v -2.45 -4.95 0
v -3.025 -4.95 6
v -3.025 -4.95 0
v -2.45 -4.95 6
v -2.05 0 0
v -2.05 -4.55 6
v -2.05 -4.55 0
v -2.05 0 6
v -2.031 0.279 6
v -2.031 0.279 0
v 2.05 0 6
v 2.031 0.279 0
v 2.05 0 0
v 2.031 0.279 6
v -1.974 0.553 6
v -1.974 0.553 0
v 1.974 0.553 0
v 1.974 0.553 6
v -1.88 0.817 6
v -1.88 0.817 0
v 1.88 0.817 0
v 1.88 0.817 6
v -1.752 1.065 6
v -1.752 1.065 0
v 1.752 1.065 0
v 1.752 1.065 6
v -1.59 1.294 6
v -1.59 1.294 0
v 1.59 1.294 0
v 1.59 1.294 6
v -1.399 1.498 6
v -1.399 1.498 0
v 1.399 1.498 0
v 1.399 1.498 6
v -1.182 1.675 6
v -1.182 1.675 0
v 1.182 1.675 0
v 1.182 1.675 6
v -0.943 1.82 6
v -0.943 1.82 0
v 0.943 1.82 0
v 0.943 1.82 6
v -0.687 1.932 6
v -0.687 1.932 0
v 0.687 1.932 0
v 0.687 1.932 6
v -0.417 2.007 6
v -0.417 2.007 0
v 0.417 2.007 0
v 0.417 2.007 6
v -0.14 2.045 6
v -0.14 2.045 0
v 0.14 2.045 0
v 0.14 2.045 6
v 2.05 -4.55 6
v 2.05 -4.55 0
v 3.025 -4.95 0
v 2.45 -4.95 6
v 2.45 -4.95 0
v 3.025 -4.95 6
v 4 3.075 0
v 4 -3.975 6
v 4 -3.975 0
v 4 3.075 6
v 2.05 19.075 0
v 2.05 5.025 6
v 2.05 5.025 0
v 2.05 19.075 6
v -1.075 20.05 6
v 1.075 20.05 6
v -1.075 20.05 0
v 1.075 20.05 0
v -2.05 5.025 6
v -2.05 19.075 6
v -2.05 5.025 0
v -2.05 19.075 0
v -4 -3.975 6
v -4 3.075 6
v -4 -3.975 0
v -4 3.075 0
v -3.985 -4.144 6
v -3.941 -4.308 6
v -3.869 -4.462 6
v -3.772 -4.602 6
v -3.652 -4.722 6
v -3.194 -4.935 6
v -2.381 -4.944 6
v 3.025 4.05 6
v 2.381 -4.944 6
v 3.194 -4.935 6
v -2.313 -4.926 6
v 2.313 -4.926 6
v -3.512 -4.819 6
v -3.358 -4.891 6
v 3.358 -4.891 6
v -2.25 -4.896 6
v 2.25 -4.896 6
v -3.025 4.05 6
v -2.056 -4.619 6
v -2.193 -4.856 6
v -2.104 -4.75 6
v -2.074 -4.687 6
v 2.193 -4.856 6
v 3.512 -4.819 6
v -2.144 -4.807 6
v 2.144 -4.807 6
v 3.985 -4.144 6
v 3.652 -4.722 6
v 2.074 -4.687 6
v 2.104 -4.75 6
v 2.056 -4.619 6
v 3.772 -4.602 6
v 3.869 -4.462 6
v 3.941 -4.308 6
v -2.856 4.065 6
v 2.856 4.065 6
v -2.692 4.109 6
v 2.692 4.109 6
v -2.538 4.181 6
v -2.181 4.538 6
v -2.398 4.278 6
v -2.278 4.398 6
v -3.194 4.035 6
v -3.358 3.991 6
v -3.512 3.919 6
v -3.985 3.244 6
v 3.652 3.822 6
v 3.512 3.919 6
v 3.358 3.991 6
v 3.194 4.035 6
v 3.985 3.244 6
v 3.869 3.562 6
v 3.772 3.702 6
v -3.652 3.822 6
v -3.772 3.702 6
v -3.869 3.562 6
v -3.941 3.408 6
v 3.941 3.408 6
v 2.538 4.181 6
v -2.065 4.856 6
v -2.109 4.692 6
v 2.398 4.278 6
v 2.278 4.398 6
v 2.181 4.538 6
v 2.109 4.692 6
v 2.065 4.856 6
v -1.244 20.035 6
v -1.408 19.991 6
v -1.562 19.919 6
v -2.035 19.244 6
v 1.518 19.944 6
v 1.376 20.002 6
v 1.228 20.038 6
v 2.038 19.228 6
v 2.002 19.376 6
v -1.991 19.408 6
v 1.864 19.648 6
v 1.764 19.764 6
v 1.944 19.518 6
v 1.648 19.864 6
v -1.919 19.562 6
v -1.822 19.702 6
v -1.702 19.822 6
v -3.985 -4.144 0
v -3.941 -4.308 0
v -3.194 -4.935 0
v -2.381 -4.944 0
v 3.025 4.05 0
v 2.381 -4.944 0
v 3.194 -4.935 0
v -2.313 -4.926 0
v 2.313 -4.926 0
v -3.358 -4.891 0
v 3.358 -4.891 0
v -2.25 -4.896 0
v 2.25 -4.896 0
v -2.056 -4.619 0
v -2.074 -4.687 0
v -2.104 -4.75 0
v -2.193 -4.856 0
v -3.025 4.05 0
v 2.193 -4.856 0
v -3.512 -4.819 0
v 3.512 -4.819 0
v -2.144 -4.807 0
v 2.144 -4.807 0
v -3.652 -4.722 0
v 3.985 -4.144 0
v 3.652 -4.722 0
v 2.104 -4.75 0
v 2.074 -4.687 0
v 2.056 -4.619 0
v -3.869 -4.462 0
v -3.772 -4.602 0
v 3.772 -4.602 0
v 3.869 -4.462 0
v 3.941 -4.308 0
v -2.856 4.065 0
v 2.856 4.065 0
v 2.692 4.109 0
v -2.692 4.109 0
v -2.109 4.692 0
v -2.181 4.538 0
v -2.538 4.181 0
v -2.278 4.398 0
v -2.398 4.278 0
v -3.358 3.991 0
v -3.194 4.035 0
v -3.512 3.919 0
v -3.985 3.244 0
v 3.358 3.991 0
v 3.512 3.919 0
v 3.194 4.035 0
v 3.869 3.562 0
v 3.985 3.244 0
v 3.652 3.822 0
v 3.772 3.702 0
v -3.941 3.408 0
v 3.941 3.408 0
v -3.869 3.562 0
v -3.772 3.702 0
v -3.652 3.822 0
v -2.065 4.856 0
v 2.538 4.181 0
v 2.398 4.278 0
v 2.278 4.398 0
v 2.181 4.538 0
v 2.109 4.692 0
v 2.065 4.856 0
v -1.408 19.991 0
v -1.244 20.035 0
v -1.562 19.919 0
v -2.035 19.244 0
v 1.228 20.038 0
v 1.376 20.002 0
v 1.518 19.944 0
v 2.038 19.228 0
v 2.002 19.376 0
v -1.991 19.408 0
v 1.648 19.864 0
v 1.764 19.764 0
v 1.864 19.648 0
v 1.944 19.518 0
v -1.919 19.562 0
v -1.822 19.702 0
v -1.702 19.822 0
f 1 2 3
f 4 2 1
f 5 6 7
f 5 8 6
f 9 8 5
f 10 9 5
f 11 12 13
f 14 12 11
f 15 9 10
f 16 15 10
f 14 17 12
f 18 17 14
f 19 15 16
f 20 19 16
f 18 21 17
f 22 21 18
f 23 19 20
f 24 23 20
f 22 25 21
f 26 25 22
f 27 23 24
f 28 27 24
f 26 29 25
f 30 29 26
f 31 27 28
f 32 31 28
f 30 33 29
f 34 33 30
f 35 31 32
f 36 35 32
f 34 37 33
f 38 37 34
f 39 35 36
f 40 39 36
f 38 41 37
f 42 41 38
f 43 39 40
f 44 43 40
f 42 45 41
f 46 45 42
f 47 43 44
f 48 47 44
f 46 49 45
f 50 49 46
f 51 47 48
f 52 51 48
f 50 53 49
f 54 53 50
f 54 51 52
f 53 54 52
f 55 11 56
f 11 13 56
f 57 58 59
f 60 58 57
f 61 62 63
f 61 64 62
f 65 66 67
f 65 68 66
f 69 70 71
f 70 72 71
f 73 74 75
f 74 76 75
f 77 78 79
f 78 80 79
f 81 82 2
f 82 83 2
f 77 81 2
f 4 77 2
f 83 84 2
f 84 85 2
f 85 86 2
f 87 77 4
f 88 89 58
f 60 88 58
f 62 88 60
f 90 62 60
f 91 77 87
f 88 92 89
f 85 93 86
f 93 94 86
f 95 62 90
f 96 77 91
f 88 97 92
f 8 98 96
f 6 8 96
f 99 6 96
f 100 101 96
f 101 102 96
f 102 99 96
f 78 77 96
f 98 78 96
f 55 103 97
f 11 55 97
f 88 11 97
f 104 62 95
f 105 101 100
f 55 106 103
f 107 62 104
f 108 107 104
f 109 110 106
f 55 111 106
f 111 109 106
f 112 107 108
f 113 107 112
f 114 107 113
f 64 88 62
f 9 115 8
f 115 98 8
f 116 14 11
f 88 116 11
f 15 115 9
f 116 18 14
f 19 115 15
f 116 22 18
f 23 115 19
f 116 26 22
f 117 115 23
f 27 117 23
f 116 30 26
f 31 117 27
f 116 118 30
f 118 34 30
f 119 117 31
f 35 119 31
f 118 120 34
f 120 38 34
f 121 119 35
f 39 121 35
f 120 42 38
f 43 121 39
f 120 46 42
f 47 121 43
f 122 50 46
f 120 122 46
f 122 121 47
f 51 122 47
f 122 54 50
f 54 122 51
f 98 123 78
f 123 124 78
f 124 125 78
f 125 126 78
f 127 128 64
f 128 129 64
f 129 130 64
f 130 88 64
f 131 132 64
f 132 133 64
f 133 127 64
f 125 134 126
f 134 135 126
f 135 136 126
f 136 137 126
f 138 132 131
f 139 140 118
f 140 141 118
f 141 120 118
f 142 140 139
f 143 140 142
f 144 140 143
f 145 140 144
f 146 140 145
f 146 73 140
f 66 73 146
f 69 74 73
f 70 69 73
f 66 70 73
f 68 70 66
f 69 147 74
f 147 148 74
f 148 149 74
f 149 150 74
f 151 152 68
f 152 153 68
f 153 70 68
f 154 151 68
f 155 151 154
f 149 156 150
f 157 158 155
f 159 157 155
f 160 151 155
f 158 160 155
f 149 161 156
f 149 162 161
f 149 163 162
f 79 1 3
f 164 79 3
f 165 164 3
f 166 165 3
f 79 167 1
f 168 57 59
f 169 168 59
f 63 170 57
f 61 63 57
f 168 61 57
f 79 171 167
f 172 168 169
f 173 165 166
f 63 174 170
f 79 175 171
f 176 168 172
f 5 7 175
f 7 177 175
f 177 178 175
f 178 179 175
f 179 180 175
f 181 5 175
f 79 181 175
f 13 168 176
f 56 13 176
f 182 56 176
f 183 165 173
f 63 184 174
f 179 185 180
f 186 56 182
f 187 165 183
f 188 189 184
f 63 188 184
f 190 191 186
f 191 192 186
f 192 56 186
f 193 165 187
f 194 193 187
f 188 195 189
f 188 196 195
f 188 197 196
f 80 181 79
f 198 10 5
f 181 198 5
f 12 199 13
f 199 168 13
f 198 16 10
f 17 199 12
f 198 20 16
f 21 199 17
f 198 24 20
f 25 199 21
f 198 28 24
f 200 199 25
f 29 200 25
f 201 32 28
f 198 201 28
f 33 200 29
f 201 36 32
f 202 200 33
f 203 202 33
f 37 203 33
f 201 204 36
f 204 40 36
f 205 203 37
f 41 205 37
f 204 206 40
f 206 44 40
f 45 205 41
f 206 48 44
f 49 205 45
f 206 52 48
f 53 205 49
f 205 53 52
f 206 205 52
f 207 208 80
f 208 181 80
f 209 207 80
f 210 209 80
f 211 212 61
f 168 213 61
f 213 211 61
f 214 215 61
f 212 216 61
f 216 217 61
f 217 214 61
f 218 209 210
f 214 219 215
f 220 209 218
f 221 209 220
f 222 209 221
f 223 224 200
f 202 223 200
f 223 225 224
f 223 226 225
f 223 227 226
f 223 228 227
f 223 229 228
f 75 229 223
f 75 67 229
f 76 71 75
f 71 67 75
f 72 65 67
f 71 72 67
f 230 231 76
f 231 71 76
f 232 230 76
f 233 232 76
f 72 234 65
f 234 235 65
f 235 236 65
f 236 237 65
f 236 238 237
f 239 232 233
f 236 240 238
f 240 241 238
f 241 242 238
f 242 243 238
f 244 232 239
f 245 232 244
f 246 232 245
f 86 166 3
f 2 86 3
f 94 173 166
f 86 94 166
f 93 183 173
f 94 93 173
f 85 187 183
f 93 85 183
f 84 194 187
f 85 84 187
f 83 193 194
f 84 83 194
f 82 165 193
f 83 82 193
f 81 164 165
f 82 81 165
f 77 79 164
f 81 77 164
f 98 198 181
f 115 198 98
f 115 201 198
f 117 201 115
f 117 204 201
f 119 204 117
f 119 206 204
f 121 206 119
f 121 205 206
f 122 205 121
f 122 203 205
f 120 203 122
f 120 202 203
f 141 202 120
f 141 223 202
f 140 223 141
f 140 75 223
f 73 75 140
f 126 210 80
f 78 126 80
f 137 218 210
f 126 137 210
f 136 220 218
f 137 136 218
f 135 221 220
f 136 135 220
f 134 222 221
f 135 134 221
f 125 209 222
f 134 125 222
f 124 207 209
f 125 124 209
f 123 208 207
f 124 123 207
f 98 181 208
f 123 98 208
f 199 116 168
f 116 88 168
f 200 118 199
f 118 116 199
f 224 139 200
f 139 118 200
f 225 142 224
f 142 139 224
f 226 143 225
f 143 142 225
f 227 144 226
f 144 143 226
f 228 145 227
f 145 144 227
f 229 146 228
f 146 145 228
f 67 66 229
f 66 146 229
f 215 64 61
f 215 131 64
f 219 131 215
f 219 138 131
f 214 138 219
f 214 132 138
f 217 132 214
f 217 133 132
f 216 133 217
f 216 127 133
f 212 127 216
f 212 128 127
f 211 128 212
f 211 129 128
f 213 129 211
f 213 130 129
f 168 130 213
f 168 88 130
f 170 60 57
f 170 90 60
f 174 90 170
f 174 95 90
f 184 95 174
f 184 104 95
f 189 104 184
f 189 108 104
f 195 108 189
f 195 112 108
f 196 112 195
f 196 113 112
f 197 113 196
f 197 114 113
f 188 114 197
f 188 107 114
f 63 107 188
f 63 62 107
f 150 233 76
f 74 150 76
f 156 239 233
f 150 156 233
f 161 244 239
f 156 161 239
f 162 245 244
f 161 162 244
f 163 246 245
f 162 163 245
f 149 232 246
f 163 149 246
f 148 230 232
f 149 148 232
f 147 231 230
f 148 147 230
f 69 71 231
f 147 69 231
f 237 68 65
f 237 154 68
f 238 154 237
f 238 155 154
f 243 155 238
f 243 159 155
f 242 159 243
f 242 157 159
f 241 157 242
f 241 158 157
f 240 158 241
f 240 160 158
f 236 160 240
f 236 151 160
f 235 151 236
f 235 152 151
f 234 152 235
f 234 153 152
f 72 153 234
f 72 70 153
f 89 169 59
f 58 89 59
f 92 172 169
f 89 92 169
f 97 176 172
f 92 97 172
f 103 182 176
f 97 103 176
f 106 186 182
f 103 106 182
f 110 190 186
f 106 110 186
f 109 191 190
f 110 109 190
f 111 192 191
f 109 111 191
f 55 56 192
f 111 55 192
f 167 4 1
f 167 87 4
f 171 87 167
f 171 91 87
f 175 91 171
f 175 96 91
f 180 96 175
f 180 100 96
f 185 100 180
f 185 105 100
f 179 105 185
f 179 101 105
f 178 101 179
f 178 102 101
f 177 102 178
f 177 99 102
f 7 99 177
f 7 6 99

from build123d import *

# Parameters (mm, degrees)
BOSS_EXTRUDE1_DEPTH = 6
FILLET1_R           = 0.975
FILLET2_R           = 0.4


with BuildPart() as part:
    # Sketch1 → Boss-Extrude1 (new body)
    with BuildSketch(Plane.XY):
        with BuildLine():
            Line((-4, -4.95), (-4, 4.05))
            Line((-4, 4.05), (-2.05, 4.05))
            Line((-2.05, 4.05), (-2.05, 20.05))
            Line((-2.05, 20.05), (2.05, 20.05))
            Line((2.05, 20.05), (2.05, 4.05))
            Line((2.05, 4.05), (4, 4.05))
            Line((4, 4.05), (4, -4.95))
            Line((4, -4.95), (2.05, -4.95))
            Line((2.05, -4.95), (2.05, 0))
            ThreePointArc((2.05, 0), (0, 2.05), (-2.05, 0))
            Line((-2.05, 0), (-2.05, -4.95))
            Line((-2.05, -4.95), (-4, -4.95))
        make_face()
    extrude(amount=BOSS_EXTRUDE1_DEPTH)

    # Fillet1
    fillet1_edges = [part.edges().sort_by_distance(p)[0] for p in [
        (-4, -4.95, 3),
        (-4, 4.05, 3),
        (-2.05, 4.05, 3),
        (4, 4.05, 3),
        (4, -4.95, 3),
        (2.05, 4.05, 3),
        (-2.05, 20.05, 3),
        (2.05, 20.05, 3),
    ]]
    fillet(fillet1_edges, radius=FILLET1_R - 0.0001)  # a hair under: the kernel refuses the full size

    # Fillet2
    fillet2_edges = [part.edges().sort_by_distance(p)[0] for p in [
        (2.05, -4.95, 3),
        (-2.05, -4.95, 3),
    ]]
    fillet(fillet2_edges, radius=FILLET2_R)


solid = part.part
